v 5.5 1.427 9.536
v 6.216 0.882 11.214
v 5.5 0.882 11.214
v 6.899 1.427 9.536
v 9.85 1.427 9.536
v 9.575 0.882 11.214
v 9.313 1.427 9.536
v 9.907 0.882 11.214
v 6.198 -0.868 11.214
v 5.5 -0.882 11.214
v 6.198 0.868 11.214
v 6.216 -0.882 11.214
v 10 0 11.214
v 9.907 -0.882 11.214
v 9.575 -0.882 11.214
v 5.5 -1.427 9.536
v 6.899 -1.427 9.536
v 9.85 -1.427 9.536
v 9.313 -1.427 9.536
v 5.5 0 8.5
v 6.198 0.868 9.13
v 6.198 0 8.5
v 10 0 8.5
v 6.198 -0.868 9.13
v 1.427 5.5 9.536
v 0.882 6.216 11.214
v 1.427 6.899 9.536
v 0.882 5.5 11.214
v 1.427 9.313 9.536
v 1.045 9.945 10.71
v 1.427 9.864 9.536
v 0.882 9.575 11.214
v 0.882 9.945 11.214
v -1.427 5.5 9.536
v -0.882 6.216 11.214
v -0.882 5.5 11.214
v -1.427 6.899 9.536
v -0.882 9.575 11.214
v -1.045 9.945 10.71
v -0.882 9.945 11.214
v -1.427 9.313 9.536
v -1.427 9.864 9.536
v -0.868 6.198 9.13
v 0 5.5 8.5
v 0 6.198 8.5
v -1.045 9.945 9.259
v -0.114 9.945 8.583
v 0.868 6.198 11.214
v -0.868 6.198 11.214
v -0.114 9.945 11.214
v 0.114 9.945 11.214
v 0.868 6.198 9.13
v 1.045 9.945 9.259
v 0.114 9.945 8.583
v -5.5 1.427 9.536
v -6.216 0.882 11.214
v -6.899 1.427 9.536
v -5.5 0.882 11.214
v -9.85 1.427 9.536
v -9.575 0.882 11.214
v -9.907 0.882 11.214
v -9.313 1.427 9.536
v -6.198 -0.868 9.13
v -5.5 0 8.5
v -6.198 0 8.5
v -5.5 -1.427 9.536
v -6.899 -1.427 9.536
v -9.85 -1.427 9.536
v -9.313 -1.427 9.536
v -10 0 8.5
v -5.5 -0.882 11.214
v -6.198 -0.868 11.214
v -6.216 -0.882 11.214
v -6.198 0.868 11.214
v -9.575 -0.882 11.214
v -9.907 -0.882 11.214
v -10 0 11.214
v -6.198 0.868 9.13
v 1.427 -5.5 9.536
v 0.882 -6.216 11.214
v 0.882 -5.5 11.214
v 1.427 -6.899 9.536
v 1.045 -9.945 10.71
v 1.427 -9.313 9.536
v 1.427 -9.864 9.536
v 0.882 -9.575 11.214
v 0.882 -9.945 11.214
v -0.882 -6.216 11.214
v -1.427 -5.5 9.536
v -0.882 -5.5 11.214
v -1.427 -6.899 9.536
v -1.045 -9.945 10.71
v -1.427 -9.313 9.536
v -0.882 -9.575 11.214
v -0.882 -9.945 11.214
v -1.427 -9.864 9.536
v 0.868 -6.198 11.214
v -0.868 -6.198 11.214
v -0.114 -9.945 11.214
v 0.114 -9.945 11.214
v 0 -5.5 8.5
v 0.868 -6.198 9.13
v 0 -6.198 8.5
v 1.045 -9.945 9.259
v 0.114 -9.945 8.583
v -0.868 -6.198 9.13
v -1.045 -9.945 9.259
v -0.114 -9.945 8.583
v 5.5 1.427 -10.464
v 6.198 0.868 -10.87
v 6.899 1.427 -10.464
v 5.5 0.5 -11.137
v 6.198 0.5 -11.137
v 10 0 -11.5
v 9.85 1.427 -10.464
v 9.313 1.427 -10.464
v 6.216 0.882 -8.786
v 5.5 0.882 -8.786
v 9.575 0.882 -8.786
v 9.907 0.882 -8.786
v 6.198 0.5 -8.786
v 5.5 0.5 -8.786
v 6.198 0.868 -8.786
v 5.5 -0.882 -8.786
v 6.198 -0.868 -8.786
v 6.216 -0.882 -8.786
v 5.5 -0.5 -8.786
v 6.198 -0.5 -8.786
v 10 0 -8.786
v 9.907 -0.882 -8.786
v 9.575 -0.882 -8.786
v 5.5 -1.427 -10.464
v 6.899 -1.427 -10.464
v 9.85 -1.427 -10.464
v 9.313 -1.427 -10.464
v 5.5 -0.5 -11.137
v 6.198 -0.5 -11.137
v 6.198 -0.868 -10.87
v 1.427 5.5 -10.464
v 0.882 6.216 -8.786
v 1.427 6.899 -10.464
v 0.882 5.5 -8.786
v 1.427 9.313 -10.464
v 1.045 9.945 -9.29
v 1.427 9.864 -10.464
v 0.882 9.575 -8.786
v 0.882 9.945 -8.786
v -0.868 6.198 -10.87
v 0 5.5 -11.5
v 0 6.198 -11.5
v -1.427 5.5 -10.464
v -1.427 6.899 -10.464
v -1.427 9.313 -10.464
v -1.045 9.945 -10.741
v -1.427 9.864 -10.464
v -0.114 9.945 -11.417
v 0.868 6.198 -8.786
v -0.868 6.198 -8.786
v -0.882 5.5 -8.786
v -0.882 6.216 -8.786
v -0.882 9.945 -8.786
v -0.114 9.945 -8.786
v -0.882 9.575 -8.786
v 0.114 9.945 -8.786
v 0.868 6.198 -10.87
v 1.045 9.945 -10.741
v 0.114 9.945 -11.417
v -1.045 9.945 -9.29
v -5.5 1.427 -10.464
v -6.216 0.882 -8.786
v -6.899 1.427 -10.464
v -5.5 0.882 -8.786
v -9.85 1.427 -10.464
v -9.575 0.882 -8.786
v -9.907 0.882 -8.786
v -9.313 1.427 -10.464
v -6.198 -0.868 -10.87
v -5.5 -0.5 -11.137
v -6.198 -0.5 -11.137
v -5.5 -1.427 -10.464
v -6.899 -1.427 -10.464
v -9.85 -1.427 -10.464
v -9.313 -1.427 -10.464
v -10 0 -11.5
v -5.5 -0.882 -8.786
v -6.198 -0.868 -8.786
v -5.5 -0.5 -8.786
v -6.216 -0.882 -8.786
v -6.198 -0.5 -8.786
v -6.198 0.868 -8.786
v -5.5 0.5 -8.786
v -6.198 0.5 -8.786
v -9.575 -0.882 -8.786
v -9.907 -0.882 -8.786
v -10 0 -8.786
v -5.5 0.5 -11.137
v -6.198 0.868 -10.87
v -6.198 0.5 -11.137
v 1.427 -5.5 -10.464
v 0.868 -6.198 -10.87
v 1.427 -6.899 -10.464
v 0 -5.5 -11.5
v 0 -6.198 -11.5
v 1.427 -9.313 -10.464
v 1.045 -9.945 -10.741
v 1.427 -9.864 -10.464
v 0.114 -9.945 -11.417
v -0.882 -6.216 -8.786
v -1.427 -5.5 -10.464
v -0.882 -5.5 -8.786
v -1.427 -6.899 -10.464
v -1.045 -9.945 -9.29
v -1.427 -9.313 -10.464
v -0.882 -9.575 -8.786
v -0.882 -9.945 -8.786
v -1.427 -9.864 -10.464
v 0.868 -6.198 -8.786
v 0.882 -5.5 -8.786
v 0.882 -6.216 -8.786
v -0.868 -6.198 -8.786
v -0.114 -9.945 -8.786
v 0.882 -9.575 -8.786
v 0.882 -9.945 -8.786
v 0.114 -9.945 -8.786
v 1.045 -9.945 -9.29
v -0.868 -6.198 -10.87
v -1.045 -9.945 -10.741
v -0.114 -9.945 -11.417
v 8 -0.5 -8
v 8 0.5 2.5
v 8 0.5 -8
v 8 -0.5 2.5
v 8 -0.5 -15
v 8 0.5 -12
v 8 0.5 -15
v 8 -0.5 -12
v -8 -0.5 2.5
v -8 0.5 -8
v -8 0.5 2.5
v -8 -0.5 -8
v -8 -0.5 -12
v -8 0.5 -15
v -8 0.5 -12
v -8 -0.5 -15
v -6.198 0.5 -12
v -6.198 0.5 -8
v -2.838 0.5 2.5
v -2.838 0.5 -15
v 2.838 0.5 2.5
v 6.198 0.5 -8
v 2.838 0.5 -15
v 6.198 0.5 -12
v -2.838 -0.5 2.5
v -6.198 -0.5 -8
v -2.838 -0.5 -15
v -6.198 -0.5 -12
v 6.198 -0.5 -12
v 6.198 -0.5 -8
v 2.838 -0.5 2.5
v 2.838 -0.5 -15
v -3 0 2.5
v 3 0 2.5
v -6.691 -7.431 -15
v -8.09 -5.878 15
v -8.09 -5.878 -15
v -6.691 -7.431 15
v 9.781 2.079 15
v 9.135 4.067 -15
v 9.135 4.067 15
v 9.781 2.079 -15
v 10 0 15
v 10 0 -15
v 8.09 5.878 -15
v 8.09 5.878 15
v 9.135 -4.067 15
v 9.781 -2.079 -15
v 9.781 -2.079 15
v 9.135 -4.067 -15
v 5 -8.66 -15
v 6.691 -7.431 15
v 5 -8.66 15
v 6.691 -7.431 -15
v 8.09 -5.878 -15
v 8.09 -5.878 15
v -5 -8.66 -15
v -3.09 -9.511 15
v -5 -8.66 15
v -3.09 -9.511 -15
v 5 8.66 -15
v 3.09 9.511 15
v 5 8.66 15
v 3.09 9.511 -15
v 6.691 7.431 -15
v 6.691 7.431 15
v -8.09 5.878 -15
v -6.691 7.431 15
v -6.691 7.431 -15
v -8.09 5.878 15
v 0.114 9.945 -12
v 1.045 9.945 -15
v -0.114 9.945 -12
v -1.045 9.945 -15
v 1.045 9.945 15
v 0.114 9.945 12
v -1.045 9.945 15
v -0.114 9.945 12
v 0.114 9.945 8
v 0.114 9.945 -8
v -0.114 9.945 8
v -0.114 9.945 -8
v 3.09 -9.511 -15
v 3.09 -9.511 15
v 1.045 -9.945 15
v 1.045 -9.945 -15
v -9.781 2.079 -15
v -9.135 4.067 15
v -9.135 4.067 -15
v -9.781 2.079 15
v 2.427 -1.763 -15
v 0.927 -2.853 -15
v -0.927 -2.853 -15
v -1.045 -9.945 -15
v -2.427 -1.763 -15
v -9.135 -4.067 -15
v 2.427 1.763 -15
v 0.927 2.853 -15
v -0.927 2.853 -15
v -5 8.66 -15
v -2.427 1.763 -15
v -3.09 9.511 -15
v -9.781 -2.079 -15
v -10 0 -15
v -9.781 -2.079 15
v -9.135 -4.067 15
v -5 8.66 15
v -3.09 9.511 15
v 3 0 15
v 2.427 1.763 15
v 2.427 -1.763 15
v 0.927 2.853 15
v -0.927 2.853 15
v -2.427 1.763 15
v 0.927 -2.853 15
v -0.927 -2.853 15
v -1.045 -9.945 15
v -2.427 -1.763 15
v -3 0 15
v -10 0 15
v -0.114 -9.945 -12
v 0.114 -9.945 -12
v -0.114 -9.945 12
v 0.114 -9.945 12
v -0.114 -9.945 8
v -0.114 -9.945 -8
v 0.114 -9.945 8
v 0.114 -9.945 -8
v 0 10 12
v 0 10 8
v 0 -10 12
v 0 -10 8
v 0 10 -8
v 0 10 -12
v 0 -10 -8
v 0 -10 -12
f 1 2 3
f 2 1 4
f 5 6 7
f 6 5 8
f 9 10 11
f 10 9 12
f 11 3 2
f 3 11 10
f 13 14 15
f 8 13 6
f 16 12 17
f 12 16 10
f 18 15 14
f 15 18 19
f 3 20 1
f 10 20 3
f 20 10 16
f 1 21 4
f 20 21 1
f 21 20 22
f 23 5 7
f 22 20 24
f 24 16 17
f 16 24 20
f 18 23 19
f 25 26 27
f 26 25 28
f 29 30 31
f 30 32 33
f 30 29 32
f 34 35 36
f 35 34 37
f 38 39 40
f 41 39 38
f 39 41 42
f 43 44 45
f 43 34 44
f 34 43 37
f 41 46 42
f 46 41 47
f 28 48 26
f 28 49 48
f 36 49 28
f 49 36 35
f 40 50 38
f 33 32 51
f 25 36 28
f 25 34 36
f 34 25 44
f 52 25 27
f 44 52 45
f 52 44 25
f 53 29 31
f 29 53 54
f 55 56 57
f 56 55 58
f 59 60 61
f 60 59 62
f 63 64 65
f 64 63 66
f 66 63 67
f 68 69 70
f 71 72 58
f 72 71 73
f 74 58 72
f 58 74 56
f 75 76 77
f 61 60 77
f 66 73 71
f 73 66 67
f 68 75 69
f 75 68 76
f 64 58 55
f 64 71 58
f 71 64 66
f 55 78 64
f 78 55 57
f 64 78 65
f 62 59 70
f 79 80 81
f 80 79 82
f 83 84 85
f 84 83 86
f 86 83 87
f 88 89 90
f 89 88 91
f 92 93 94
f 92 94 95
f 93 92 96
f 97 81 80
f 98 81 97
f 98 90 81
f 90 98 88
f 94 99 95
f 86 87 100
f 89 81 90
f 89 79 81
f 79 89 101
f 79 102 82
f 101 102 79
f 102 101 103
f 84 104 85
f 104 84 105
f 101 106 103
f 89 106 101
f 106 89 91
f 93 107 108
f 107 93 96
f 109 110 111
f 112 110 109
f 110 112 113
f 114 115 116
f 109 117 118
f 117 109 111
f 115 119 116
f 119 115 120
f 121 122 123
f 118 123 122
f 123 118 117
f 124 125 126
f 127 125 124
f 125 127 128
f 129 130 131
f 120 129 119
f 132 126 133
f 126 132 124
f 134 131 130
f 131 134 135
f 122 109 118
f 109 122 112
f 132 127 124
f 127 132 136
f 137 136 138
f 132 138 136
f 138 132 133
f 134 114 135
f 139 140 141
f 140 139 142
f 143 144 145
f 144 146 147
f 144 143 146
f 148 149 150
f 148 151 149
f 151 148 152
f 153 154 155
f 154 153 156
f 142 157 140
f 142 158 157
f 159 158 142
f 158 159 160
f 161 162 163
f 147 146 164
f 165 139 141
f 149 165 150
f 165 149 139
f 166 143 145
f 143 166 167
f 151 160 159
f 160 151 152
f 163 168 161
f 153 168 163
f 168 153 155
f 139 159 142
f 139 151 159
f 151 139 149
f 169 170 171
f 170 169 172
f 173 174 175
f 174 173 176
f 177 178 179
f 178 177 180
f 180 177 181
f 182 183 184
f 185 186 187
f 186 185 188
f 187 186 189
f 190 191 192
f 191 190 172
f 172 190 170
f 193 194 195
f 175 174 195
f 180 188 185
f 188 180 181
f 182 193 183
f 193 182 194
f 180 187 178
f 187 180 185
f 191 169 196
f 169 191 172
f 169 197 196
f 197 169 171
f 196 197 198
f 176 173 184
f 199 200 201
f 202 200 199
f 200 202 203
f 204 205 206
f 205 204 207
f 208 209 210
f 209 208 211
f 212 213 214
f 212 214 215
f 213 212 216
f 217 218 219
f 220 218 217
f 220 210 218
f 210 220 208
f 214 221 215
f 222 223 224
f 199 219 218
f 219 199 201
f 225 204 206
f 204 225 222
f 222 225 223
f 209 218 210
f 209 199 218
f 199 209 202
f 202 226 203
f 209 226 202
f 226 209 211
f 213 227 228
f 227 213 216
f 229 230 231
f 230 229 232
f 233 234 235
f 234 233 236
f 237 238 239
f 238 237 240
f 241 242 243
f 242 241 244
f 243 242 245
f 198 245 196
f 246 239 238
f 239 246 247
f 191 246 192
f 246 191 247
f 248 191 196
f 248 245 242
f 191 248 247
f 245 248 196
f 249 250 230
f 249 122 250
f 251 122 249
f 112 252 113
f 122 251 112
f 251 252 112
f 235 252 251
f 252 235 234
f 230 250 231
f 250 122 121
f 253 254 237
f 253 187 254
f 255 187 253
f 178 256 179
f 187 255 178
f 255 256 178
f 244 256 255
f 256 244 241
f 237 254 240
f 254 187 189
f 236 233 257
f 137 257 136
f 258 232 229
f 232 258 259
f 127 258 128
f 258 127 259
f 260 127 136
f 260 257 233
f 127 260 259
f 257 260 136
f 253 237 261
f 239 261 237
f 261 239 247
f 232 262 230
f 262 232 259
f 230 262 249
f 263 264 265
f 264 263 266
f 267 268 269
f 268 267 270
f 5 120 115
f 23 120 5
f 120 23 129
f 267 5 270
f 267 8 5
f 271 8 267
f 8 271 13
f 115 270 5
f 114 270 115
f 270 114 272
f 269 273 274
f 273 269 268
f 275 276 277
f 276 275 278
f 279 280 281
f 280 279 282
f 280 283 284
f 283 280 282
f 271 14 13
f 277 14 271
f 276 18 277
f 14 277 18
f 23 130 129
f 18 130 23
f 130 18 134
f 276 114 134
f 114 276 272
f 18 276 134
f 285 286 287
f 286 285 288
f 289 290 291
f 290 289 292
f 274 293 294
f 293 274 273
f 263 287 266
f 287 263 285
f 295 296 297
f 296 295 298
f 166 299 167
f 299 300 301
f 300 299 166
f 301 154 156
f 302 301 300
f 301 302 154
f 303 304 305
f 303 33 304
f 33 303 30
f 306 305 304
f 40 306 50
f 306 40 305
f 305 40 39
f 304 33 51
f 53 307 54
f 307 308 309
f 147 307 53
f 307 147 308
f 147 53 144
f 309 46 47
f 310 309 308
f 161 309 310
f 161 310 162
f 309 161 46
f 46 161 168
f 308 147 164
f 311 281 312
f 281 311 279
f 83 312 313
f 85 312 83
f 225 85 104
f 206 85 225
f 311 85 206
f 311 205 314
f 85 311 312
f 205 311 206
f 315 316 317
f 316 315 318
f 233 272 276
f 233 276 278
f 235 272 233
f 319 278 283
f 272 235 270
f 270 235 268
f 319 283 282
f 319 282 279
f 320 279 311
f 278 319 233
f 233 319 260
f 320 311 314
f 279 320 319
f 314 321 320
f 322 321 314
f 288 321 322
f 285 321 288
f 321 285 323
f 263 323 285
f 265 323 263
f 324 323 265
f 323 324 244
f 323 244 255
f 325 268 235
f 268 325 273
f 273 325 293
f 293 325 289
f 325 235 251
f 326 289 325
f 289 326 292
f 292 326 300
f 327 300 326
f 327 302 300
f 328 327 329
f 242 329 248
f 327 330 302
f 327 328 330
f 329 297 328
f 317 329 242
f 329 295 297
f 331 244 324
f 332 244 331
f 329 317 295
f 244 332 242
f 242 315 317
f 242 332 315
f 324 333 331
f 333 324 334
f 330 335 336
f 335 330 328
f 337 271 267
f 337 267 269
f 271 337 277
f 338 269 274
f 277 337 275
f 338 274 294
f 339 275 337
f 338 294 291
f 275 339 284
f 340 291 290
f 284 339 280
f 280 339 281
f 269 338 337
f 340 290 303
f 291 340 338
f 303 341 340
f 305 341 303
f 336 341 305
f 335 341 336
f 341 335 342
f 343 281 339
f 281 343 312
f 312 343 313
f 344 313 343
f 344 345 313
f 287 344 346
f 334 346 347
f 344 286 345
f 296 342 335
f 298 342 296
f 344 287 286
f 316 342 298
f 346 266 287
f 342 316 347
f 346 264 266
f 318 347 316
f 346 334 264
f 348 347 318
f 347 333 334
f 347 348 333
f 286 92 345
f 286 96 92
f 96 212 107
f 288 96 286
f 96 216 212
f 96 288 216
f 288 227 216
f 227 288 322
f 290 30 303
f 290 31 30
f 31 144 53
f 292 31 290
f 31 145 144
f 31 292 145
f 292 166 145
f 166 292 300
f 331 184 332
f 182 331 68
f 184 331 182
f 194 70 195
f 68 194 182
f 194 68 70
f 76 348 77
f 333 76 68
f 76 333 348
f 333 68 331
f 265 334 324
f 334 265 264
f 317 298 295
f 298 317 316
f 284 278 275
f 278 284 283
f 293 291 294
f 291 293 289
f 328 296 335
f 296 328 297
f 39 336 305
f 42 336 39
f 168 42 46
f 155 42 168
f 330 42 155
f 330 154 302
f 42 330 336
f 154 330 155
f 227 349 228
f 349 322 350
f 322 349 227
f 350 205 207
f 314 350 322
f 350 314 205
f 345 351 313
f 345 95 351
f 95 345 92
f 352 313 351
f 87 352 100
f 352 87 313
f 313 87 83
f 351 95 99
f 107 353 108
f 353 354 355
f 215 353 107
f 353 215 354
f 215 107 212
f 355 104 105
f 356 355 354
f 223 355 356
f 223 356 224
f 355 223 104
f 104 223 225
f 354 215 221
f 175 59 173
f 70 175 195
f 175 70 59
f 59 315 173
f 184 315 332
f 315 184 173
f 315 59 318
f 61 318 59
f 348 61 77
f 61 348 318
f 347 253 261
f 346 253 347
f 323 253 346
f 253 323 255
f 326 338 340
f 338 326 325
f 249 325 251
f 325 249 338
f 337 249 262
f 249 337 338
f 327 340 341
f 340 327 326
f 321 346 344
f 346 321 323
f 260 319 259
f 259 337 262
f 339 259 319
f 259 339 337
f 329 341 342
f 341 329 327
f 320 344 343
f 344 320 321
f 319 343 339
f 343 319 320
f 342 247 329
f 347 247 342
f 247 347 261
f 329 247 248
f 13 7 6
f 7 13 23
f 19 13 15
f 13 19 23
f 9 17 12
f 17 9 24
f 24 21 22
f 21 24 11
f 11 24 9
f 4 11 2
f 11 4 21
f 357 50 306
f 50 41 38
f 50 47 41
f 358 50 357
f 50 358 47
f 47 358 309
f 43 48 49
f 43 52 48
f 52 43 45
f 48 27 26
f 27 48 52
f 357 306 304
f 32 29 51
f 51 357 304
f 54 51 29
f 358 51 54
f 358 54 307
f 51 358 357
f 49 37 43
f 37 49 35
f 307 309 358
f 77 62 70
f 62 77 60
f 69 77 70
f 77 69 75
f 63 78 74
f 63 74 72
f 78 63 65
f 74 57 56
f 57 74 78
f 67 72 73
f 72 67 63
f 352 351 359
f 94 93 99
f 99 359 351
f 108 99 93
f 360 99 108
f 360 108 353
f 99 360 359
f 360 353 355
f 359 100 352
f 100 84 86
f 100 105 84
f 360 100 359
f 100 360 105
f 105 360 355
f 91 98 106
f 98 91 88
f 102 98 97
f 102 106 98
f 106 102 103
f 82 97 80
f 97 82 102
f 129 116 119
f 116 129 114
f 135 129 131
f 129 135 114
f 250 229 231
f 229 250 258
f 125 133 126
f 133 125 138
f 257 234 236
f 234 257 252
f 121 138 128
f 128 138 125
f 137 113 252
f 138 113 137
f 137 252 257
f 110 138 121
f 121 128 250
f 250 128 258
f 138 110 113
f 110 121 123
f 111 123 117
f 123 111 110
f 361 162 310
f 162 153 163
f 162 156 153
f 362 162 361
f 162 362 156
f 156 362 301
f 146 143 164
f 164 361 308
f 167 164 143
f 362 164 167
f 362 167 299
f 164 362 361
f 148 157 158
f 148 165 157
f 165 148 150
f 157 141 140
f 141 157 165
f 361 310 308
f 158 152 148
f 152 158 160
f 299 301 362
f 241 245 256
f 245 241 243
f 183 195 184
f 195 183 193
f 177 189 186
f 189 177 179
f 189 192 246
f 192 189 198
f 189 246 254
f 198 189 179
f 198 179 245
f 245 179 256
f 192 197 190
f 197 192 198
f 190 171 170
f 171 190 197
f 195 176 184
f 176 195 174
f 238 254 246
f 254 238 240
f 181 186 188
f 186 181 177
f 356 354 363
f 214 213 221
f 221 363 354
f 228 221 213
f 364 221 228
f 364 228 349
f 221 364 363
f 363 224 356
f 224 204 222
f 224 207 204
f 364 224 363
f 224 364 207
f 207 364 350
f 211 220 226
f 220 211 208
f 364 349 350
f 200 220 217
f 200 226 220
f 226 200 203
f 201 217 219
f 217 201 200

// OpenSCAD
// Parameters
coupling_diameter = 20;
coupling_height = 30;
shaft_hole_diameter = 6;
set_screw_hole_diameter = 3;
set_screw_hole_depth = 5;
slit_width = 1;
slit_spacing = 3;
num_slits = 5;
slit_length = coupling_diameter * 0.8; // Adjusted slit length
slit_depth = coupling_diameter * 0.4; // Depth of slits for flexibility

// Function to create the flexible coupling body
module flexible_coupling_body() {
    difference() {
        // Main cylindrical body
        cylinder(h = coupling_height, d = coupling_diameter, center = true);
        
        // Central bore for shaft insertion
        cylinder(h = coupling_height + 2, d = shaft_hole_diameter, center = true);
        
        // Set screw holes repositioned to align with slits
        for (i = [0:3]) {
            rotate([0, 0, i * 90])
                translate([coupling_diameter / 2 - 2, 0, coupling_height / 3])
                    rotate([0, 90, 0])
                        cylinder(h = set_screw_hole_depth, d = set_screw_hole_diameter, center = true);
        }
        
        for (i = [0:3]) {
            rotate([0, 0, i * 90])
                translate([coupling_diameter / 2 - 2, 0, -coupling_height / 3])
                    rotate([0, 90, 0])
                        cylinder(h = set_screw_hole_depth, d = set_screw_hole_diameter, center = true);
        }
        
        // Slits for flexibility
        for (i = [0:num_slits - 1]) {
            translate([0, 0, -coupling_height / 2 + (i + 0.5) * slit_spacing])
                rotate([0, 0, 0])
                    cube([slit_length, slit_width, slit_depth], center = true);
        }
    }
}

// Function to create set screws
module set_screw() {
    cylinder(h = 4, d = set_screw_hole_diameter + 1, center = true);
}

// Assemble the model
module flexible_coupling() {
    flexible_coupling_body();
    
    // Positioning the set screws to align with slits
    for (i = [0:3]) {
        rotate([0, 0, i * 90])
            translate([coupling_diameter / 2 - 2, 0, coupling_height / 3])
                set_screw();
    }
    
    for (i = [0:3]) {
        rotate([0, 0, i * 90])
            translate([coupling_diameter / 2 - 2, 0, -coupling_height / 3])
                set_screw();
    }
}

// Render the final model
flexible_coupling();
